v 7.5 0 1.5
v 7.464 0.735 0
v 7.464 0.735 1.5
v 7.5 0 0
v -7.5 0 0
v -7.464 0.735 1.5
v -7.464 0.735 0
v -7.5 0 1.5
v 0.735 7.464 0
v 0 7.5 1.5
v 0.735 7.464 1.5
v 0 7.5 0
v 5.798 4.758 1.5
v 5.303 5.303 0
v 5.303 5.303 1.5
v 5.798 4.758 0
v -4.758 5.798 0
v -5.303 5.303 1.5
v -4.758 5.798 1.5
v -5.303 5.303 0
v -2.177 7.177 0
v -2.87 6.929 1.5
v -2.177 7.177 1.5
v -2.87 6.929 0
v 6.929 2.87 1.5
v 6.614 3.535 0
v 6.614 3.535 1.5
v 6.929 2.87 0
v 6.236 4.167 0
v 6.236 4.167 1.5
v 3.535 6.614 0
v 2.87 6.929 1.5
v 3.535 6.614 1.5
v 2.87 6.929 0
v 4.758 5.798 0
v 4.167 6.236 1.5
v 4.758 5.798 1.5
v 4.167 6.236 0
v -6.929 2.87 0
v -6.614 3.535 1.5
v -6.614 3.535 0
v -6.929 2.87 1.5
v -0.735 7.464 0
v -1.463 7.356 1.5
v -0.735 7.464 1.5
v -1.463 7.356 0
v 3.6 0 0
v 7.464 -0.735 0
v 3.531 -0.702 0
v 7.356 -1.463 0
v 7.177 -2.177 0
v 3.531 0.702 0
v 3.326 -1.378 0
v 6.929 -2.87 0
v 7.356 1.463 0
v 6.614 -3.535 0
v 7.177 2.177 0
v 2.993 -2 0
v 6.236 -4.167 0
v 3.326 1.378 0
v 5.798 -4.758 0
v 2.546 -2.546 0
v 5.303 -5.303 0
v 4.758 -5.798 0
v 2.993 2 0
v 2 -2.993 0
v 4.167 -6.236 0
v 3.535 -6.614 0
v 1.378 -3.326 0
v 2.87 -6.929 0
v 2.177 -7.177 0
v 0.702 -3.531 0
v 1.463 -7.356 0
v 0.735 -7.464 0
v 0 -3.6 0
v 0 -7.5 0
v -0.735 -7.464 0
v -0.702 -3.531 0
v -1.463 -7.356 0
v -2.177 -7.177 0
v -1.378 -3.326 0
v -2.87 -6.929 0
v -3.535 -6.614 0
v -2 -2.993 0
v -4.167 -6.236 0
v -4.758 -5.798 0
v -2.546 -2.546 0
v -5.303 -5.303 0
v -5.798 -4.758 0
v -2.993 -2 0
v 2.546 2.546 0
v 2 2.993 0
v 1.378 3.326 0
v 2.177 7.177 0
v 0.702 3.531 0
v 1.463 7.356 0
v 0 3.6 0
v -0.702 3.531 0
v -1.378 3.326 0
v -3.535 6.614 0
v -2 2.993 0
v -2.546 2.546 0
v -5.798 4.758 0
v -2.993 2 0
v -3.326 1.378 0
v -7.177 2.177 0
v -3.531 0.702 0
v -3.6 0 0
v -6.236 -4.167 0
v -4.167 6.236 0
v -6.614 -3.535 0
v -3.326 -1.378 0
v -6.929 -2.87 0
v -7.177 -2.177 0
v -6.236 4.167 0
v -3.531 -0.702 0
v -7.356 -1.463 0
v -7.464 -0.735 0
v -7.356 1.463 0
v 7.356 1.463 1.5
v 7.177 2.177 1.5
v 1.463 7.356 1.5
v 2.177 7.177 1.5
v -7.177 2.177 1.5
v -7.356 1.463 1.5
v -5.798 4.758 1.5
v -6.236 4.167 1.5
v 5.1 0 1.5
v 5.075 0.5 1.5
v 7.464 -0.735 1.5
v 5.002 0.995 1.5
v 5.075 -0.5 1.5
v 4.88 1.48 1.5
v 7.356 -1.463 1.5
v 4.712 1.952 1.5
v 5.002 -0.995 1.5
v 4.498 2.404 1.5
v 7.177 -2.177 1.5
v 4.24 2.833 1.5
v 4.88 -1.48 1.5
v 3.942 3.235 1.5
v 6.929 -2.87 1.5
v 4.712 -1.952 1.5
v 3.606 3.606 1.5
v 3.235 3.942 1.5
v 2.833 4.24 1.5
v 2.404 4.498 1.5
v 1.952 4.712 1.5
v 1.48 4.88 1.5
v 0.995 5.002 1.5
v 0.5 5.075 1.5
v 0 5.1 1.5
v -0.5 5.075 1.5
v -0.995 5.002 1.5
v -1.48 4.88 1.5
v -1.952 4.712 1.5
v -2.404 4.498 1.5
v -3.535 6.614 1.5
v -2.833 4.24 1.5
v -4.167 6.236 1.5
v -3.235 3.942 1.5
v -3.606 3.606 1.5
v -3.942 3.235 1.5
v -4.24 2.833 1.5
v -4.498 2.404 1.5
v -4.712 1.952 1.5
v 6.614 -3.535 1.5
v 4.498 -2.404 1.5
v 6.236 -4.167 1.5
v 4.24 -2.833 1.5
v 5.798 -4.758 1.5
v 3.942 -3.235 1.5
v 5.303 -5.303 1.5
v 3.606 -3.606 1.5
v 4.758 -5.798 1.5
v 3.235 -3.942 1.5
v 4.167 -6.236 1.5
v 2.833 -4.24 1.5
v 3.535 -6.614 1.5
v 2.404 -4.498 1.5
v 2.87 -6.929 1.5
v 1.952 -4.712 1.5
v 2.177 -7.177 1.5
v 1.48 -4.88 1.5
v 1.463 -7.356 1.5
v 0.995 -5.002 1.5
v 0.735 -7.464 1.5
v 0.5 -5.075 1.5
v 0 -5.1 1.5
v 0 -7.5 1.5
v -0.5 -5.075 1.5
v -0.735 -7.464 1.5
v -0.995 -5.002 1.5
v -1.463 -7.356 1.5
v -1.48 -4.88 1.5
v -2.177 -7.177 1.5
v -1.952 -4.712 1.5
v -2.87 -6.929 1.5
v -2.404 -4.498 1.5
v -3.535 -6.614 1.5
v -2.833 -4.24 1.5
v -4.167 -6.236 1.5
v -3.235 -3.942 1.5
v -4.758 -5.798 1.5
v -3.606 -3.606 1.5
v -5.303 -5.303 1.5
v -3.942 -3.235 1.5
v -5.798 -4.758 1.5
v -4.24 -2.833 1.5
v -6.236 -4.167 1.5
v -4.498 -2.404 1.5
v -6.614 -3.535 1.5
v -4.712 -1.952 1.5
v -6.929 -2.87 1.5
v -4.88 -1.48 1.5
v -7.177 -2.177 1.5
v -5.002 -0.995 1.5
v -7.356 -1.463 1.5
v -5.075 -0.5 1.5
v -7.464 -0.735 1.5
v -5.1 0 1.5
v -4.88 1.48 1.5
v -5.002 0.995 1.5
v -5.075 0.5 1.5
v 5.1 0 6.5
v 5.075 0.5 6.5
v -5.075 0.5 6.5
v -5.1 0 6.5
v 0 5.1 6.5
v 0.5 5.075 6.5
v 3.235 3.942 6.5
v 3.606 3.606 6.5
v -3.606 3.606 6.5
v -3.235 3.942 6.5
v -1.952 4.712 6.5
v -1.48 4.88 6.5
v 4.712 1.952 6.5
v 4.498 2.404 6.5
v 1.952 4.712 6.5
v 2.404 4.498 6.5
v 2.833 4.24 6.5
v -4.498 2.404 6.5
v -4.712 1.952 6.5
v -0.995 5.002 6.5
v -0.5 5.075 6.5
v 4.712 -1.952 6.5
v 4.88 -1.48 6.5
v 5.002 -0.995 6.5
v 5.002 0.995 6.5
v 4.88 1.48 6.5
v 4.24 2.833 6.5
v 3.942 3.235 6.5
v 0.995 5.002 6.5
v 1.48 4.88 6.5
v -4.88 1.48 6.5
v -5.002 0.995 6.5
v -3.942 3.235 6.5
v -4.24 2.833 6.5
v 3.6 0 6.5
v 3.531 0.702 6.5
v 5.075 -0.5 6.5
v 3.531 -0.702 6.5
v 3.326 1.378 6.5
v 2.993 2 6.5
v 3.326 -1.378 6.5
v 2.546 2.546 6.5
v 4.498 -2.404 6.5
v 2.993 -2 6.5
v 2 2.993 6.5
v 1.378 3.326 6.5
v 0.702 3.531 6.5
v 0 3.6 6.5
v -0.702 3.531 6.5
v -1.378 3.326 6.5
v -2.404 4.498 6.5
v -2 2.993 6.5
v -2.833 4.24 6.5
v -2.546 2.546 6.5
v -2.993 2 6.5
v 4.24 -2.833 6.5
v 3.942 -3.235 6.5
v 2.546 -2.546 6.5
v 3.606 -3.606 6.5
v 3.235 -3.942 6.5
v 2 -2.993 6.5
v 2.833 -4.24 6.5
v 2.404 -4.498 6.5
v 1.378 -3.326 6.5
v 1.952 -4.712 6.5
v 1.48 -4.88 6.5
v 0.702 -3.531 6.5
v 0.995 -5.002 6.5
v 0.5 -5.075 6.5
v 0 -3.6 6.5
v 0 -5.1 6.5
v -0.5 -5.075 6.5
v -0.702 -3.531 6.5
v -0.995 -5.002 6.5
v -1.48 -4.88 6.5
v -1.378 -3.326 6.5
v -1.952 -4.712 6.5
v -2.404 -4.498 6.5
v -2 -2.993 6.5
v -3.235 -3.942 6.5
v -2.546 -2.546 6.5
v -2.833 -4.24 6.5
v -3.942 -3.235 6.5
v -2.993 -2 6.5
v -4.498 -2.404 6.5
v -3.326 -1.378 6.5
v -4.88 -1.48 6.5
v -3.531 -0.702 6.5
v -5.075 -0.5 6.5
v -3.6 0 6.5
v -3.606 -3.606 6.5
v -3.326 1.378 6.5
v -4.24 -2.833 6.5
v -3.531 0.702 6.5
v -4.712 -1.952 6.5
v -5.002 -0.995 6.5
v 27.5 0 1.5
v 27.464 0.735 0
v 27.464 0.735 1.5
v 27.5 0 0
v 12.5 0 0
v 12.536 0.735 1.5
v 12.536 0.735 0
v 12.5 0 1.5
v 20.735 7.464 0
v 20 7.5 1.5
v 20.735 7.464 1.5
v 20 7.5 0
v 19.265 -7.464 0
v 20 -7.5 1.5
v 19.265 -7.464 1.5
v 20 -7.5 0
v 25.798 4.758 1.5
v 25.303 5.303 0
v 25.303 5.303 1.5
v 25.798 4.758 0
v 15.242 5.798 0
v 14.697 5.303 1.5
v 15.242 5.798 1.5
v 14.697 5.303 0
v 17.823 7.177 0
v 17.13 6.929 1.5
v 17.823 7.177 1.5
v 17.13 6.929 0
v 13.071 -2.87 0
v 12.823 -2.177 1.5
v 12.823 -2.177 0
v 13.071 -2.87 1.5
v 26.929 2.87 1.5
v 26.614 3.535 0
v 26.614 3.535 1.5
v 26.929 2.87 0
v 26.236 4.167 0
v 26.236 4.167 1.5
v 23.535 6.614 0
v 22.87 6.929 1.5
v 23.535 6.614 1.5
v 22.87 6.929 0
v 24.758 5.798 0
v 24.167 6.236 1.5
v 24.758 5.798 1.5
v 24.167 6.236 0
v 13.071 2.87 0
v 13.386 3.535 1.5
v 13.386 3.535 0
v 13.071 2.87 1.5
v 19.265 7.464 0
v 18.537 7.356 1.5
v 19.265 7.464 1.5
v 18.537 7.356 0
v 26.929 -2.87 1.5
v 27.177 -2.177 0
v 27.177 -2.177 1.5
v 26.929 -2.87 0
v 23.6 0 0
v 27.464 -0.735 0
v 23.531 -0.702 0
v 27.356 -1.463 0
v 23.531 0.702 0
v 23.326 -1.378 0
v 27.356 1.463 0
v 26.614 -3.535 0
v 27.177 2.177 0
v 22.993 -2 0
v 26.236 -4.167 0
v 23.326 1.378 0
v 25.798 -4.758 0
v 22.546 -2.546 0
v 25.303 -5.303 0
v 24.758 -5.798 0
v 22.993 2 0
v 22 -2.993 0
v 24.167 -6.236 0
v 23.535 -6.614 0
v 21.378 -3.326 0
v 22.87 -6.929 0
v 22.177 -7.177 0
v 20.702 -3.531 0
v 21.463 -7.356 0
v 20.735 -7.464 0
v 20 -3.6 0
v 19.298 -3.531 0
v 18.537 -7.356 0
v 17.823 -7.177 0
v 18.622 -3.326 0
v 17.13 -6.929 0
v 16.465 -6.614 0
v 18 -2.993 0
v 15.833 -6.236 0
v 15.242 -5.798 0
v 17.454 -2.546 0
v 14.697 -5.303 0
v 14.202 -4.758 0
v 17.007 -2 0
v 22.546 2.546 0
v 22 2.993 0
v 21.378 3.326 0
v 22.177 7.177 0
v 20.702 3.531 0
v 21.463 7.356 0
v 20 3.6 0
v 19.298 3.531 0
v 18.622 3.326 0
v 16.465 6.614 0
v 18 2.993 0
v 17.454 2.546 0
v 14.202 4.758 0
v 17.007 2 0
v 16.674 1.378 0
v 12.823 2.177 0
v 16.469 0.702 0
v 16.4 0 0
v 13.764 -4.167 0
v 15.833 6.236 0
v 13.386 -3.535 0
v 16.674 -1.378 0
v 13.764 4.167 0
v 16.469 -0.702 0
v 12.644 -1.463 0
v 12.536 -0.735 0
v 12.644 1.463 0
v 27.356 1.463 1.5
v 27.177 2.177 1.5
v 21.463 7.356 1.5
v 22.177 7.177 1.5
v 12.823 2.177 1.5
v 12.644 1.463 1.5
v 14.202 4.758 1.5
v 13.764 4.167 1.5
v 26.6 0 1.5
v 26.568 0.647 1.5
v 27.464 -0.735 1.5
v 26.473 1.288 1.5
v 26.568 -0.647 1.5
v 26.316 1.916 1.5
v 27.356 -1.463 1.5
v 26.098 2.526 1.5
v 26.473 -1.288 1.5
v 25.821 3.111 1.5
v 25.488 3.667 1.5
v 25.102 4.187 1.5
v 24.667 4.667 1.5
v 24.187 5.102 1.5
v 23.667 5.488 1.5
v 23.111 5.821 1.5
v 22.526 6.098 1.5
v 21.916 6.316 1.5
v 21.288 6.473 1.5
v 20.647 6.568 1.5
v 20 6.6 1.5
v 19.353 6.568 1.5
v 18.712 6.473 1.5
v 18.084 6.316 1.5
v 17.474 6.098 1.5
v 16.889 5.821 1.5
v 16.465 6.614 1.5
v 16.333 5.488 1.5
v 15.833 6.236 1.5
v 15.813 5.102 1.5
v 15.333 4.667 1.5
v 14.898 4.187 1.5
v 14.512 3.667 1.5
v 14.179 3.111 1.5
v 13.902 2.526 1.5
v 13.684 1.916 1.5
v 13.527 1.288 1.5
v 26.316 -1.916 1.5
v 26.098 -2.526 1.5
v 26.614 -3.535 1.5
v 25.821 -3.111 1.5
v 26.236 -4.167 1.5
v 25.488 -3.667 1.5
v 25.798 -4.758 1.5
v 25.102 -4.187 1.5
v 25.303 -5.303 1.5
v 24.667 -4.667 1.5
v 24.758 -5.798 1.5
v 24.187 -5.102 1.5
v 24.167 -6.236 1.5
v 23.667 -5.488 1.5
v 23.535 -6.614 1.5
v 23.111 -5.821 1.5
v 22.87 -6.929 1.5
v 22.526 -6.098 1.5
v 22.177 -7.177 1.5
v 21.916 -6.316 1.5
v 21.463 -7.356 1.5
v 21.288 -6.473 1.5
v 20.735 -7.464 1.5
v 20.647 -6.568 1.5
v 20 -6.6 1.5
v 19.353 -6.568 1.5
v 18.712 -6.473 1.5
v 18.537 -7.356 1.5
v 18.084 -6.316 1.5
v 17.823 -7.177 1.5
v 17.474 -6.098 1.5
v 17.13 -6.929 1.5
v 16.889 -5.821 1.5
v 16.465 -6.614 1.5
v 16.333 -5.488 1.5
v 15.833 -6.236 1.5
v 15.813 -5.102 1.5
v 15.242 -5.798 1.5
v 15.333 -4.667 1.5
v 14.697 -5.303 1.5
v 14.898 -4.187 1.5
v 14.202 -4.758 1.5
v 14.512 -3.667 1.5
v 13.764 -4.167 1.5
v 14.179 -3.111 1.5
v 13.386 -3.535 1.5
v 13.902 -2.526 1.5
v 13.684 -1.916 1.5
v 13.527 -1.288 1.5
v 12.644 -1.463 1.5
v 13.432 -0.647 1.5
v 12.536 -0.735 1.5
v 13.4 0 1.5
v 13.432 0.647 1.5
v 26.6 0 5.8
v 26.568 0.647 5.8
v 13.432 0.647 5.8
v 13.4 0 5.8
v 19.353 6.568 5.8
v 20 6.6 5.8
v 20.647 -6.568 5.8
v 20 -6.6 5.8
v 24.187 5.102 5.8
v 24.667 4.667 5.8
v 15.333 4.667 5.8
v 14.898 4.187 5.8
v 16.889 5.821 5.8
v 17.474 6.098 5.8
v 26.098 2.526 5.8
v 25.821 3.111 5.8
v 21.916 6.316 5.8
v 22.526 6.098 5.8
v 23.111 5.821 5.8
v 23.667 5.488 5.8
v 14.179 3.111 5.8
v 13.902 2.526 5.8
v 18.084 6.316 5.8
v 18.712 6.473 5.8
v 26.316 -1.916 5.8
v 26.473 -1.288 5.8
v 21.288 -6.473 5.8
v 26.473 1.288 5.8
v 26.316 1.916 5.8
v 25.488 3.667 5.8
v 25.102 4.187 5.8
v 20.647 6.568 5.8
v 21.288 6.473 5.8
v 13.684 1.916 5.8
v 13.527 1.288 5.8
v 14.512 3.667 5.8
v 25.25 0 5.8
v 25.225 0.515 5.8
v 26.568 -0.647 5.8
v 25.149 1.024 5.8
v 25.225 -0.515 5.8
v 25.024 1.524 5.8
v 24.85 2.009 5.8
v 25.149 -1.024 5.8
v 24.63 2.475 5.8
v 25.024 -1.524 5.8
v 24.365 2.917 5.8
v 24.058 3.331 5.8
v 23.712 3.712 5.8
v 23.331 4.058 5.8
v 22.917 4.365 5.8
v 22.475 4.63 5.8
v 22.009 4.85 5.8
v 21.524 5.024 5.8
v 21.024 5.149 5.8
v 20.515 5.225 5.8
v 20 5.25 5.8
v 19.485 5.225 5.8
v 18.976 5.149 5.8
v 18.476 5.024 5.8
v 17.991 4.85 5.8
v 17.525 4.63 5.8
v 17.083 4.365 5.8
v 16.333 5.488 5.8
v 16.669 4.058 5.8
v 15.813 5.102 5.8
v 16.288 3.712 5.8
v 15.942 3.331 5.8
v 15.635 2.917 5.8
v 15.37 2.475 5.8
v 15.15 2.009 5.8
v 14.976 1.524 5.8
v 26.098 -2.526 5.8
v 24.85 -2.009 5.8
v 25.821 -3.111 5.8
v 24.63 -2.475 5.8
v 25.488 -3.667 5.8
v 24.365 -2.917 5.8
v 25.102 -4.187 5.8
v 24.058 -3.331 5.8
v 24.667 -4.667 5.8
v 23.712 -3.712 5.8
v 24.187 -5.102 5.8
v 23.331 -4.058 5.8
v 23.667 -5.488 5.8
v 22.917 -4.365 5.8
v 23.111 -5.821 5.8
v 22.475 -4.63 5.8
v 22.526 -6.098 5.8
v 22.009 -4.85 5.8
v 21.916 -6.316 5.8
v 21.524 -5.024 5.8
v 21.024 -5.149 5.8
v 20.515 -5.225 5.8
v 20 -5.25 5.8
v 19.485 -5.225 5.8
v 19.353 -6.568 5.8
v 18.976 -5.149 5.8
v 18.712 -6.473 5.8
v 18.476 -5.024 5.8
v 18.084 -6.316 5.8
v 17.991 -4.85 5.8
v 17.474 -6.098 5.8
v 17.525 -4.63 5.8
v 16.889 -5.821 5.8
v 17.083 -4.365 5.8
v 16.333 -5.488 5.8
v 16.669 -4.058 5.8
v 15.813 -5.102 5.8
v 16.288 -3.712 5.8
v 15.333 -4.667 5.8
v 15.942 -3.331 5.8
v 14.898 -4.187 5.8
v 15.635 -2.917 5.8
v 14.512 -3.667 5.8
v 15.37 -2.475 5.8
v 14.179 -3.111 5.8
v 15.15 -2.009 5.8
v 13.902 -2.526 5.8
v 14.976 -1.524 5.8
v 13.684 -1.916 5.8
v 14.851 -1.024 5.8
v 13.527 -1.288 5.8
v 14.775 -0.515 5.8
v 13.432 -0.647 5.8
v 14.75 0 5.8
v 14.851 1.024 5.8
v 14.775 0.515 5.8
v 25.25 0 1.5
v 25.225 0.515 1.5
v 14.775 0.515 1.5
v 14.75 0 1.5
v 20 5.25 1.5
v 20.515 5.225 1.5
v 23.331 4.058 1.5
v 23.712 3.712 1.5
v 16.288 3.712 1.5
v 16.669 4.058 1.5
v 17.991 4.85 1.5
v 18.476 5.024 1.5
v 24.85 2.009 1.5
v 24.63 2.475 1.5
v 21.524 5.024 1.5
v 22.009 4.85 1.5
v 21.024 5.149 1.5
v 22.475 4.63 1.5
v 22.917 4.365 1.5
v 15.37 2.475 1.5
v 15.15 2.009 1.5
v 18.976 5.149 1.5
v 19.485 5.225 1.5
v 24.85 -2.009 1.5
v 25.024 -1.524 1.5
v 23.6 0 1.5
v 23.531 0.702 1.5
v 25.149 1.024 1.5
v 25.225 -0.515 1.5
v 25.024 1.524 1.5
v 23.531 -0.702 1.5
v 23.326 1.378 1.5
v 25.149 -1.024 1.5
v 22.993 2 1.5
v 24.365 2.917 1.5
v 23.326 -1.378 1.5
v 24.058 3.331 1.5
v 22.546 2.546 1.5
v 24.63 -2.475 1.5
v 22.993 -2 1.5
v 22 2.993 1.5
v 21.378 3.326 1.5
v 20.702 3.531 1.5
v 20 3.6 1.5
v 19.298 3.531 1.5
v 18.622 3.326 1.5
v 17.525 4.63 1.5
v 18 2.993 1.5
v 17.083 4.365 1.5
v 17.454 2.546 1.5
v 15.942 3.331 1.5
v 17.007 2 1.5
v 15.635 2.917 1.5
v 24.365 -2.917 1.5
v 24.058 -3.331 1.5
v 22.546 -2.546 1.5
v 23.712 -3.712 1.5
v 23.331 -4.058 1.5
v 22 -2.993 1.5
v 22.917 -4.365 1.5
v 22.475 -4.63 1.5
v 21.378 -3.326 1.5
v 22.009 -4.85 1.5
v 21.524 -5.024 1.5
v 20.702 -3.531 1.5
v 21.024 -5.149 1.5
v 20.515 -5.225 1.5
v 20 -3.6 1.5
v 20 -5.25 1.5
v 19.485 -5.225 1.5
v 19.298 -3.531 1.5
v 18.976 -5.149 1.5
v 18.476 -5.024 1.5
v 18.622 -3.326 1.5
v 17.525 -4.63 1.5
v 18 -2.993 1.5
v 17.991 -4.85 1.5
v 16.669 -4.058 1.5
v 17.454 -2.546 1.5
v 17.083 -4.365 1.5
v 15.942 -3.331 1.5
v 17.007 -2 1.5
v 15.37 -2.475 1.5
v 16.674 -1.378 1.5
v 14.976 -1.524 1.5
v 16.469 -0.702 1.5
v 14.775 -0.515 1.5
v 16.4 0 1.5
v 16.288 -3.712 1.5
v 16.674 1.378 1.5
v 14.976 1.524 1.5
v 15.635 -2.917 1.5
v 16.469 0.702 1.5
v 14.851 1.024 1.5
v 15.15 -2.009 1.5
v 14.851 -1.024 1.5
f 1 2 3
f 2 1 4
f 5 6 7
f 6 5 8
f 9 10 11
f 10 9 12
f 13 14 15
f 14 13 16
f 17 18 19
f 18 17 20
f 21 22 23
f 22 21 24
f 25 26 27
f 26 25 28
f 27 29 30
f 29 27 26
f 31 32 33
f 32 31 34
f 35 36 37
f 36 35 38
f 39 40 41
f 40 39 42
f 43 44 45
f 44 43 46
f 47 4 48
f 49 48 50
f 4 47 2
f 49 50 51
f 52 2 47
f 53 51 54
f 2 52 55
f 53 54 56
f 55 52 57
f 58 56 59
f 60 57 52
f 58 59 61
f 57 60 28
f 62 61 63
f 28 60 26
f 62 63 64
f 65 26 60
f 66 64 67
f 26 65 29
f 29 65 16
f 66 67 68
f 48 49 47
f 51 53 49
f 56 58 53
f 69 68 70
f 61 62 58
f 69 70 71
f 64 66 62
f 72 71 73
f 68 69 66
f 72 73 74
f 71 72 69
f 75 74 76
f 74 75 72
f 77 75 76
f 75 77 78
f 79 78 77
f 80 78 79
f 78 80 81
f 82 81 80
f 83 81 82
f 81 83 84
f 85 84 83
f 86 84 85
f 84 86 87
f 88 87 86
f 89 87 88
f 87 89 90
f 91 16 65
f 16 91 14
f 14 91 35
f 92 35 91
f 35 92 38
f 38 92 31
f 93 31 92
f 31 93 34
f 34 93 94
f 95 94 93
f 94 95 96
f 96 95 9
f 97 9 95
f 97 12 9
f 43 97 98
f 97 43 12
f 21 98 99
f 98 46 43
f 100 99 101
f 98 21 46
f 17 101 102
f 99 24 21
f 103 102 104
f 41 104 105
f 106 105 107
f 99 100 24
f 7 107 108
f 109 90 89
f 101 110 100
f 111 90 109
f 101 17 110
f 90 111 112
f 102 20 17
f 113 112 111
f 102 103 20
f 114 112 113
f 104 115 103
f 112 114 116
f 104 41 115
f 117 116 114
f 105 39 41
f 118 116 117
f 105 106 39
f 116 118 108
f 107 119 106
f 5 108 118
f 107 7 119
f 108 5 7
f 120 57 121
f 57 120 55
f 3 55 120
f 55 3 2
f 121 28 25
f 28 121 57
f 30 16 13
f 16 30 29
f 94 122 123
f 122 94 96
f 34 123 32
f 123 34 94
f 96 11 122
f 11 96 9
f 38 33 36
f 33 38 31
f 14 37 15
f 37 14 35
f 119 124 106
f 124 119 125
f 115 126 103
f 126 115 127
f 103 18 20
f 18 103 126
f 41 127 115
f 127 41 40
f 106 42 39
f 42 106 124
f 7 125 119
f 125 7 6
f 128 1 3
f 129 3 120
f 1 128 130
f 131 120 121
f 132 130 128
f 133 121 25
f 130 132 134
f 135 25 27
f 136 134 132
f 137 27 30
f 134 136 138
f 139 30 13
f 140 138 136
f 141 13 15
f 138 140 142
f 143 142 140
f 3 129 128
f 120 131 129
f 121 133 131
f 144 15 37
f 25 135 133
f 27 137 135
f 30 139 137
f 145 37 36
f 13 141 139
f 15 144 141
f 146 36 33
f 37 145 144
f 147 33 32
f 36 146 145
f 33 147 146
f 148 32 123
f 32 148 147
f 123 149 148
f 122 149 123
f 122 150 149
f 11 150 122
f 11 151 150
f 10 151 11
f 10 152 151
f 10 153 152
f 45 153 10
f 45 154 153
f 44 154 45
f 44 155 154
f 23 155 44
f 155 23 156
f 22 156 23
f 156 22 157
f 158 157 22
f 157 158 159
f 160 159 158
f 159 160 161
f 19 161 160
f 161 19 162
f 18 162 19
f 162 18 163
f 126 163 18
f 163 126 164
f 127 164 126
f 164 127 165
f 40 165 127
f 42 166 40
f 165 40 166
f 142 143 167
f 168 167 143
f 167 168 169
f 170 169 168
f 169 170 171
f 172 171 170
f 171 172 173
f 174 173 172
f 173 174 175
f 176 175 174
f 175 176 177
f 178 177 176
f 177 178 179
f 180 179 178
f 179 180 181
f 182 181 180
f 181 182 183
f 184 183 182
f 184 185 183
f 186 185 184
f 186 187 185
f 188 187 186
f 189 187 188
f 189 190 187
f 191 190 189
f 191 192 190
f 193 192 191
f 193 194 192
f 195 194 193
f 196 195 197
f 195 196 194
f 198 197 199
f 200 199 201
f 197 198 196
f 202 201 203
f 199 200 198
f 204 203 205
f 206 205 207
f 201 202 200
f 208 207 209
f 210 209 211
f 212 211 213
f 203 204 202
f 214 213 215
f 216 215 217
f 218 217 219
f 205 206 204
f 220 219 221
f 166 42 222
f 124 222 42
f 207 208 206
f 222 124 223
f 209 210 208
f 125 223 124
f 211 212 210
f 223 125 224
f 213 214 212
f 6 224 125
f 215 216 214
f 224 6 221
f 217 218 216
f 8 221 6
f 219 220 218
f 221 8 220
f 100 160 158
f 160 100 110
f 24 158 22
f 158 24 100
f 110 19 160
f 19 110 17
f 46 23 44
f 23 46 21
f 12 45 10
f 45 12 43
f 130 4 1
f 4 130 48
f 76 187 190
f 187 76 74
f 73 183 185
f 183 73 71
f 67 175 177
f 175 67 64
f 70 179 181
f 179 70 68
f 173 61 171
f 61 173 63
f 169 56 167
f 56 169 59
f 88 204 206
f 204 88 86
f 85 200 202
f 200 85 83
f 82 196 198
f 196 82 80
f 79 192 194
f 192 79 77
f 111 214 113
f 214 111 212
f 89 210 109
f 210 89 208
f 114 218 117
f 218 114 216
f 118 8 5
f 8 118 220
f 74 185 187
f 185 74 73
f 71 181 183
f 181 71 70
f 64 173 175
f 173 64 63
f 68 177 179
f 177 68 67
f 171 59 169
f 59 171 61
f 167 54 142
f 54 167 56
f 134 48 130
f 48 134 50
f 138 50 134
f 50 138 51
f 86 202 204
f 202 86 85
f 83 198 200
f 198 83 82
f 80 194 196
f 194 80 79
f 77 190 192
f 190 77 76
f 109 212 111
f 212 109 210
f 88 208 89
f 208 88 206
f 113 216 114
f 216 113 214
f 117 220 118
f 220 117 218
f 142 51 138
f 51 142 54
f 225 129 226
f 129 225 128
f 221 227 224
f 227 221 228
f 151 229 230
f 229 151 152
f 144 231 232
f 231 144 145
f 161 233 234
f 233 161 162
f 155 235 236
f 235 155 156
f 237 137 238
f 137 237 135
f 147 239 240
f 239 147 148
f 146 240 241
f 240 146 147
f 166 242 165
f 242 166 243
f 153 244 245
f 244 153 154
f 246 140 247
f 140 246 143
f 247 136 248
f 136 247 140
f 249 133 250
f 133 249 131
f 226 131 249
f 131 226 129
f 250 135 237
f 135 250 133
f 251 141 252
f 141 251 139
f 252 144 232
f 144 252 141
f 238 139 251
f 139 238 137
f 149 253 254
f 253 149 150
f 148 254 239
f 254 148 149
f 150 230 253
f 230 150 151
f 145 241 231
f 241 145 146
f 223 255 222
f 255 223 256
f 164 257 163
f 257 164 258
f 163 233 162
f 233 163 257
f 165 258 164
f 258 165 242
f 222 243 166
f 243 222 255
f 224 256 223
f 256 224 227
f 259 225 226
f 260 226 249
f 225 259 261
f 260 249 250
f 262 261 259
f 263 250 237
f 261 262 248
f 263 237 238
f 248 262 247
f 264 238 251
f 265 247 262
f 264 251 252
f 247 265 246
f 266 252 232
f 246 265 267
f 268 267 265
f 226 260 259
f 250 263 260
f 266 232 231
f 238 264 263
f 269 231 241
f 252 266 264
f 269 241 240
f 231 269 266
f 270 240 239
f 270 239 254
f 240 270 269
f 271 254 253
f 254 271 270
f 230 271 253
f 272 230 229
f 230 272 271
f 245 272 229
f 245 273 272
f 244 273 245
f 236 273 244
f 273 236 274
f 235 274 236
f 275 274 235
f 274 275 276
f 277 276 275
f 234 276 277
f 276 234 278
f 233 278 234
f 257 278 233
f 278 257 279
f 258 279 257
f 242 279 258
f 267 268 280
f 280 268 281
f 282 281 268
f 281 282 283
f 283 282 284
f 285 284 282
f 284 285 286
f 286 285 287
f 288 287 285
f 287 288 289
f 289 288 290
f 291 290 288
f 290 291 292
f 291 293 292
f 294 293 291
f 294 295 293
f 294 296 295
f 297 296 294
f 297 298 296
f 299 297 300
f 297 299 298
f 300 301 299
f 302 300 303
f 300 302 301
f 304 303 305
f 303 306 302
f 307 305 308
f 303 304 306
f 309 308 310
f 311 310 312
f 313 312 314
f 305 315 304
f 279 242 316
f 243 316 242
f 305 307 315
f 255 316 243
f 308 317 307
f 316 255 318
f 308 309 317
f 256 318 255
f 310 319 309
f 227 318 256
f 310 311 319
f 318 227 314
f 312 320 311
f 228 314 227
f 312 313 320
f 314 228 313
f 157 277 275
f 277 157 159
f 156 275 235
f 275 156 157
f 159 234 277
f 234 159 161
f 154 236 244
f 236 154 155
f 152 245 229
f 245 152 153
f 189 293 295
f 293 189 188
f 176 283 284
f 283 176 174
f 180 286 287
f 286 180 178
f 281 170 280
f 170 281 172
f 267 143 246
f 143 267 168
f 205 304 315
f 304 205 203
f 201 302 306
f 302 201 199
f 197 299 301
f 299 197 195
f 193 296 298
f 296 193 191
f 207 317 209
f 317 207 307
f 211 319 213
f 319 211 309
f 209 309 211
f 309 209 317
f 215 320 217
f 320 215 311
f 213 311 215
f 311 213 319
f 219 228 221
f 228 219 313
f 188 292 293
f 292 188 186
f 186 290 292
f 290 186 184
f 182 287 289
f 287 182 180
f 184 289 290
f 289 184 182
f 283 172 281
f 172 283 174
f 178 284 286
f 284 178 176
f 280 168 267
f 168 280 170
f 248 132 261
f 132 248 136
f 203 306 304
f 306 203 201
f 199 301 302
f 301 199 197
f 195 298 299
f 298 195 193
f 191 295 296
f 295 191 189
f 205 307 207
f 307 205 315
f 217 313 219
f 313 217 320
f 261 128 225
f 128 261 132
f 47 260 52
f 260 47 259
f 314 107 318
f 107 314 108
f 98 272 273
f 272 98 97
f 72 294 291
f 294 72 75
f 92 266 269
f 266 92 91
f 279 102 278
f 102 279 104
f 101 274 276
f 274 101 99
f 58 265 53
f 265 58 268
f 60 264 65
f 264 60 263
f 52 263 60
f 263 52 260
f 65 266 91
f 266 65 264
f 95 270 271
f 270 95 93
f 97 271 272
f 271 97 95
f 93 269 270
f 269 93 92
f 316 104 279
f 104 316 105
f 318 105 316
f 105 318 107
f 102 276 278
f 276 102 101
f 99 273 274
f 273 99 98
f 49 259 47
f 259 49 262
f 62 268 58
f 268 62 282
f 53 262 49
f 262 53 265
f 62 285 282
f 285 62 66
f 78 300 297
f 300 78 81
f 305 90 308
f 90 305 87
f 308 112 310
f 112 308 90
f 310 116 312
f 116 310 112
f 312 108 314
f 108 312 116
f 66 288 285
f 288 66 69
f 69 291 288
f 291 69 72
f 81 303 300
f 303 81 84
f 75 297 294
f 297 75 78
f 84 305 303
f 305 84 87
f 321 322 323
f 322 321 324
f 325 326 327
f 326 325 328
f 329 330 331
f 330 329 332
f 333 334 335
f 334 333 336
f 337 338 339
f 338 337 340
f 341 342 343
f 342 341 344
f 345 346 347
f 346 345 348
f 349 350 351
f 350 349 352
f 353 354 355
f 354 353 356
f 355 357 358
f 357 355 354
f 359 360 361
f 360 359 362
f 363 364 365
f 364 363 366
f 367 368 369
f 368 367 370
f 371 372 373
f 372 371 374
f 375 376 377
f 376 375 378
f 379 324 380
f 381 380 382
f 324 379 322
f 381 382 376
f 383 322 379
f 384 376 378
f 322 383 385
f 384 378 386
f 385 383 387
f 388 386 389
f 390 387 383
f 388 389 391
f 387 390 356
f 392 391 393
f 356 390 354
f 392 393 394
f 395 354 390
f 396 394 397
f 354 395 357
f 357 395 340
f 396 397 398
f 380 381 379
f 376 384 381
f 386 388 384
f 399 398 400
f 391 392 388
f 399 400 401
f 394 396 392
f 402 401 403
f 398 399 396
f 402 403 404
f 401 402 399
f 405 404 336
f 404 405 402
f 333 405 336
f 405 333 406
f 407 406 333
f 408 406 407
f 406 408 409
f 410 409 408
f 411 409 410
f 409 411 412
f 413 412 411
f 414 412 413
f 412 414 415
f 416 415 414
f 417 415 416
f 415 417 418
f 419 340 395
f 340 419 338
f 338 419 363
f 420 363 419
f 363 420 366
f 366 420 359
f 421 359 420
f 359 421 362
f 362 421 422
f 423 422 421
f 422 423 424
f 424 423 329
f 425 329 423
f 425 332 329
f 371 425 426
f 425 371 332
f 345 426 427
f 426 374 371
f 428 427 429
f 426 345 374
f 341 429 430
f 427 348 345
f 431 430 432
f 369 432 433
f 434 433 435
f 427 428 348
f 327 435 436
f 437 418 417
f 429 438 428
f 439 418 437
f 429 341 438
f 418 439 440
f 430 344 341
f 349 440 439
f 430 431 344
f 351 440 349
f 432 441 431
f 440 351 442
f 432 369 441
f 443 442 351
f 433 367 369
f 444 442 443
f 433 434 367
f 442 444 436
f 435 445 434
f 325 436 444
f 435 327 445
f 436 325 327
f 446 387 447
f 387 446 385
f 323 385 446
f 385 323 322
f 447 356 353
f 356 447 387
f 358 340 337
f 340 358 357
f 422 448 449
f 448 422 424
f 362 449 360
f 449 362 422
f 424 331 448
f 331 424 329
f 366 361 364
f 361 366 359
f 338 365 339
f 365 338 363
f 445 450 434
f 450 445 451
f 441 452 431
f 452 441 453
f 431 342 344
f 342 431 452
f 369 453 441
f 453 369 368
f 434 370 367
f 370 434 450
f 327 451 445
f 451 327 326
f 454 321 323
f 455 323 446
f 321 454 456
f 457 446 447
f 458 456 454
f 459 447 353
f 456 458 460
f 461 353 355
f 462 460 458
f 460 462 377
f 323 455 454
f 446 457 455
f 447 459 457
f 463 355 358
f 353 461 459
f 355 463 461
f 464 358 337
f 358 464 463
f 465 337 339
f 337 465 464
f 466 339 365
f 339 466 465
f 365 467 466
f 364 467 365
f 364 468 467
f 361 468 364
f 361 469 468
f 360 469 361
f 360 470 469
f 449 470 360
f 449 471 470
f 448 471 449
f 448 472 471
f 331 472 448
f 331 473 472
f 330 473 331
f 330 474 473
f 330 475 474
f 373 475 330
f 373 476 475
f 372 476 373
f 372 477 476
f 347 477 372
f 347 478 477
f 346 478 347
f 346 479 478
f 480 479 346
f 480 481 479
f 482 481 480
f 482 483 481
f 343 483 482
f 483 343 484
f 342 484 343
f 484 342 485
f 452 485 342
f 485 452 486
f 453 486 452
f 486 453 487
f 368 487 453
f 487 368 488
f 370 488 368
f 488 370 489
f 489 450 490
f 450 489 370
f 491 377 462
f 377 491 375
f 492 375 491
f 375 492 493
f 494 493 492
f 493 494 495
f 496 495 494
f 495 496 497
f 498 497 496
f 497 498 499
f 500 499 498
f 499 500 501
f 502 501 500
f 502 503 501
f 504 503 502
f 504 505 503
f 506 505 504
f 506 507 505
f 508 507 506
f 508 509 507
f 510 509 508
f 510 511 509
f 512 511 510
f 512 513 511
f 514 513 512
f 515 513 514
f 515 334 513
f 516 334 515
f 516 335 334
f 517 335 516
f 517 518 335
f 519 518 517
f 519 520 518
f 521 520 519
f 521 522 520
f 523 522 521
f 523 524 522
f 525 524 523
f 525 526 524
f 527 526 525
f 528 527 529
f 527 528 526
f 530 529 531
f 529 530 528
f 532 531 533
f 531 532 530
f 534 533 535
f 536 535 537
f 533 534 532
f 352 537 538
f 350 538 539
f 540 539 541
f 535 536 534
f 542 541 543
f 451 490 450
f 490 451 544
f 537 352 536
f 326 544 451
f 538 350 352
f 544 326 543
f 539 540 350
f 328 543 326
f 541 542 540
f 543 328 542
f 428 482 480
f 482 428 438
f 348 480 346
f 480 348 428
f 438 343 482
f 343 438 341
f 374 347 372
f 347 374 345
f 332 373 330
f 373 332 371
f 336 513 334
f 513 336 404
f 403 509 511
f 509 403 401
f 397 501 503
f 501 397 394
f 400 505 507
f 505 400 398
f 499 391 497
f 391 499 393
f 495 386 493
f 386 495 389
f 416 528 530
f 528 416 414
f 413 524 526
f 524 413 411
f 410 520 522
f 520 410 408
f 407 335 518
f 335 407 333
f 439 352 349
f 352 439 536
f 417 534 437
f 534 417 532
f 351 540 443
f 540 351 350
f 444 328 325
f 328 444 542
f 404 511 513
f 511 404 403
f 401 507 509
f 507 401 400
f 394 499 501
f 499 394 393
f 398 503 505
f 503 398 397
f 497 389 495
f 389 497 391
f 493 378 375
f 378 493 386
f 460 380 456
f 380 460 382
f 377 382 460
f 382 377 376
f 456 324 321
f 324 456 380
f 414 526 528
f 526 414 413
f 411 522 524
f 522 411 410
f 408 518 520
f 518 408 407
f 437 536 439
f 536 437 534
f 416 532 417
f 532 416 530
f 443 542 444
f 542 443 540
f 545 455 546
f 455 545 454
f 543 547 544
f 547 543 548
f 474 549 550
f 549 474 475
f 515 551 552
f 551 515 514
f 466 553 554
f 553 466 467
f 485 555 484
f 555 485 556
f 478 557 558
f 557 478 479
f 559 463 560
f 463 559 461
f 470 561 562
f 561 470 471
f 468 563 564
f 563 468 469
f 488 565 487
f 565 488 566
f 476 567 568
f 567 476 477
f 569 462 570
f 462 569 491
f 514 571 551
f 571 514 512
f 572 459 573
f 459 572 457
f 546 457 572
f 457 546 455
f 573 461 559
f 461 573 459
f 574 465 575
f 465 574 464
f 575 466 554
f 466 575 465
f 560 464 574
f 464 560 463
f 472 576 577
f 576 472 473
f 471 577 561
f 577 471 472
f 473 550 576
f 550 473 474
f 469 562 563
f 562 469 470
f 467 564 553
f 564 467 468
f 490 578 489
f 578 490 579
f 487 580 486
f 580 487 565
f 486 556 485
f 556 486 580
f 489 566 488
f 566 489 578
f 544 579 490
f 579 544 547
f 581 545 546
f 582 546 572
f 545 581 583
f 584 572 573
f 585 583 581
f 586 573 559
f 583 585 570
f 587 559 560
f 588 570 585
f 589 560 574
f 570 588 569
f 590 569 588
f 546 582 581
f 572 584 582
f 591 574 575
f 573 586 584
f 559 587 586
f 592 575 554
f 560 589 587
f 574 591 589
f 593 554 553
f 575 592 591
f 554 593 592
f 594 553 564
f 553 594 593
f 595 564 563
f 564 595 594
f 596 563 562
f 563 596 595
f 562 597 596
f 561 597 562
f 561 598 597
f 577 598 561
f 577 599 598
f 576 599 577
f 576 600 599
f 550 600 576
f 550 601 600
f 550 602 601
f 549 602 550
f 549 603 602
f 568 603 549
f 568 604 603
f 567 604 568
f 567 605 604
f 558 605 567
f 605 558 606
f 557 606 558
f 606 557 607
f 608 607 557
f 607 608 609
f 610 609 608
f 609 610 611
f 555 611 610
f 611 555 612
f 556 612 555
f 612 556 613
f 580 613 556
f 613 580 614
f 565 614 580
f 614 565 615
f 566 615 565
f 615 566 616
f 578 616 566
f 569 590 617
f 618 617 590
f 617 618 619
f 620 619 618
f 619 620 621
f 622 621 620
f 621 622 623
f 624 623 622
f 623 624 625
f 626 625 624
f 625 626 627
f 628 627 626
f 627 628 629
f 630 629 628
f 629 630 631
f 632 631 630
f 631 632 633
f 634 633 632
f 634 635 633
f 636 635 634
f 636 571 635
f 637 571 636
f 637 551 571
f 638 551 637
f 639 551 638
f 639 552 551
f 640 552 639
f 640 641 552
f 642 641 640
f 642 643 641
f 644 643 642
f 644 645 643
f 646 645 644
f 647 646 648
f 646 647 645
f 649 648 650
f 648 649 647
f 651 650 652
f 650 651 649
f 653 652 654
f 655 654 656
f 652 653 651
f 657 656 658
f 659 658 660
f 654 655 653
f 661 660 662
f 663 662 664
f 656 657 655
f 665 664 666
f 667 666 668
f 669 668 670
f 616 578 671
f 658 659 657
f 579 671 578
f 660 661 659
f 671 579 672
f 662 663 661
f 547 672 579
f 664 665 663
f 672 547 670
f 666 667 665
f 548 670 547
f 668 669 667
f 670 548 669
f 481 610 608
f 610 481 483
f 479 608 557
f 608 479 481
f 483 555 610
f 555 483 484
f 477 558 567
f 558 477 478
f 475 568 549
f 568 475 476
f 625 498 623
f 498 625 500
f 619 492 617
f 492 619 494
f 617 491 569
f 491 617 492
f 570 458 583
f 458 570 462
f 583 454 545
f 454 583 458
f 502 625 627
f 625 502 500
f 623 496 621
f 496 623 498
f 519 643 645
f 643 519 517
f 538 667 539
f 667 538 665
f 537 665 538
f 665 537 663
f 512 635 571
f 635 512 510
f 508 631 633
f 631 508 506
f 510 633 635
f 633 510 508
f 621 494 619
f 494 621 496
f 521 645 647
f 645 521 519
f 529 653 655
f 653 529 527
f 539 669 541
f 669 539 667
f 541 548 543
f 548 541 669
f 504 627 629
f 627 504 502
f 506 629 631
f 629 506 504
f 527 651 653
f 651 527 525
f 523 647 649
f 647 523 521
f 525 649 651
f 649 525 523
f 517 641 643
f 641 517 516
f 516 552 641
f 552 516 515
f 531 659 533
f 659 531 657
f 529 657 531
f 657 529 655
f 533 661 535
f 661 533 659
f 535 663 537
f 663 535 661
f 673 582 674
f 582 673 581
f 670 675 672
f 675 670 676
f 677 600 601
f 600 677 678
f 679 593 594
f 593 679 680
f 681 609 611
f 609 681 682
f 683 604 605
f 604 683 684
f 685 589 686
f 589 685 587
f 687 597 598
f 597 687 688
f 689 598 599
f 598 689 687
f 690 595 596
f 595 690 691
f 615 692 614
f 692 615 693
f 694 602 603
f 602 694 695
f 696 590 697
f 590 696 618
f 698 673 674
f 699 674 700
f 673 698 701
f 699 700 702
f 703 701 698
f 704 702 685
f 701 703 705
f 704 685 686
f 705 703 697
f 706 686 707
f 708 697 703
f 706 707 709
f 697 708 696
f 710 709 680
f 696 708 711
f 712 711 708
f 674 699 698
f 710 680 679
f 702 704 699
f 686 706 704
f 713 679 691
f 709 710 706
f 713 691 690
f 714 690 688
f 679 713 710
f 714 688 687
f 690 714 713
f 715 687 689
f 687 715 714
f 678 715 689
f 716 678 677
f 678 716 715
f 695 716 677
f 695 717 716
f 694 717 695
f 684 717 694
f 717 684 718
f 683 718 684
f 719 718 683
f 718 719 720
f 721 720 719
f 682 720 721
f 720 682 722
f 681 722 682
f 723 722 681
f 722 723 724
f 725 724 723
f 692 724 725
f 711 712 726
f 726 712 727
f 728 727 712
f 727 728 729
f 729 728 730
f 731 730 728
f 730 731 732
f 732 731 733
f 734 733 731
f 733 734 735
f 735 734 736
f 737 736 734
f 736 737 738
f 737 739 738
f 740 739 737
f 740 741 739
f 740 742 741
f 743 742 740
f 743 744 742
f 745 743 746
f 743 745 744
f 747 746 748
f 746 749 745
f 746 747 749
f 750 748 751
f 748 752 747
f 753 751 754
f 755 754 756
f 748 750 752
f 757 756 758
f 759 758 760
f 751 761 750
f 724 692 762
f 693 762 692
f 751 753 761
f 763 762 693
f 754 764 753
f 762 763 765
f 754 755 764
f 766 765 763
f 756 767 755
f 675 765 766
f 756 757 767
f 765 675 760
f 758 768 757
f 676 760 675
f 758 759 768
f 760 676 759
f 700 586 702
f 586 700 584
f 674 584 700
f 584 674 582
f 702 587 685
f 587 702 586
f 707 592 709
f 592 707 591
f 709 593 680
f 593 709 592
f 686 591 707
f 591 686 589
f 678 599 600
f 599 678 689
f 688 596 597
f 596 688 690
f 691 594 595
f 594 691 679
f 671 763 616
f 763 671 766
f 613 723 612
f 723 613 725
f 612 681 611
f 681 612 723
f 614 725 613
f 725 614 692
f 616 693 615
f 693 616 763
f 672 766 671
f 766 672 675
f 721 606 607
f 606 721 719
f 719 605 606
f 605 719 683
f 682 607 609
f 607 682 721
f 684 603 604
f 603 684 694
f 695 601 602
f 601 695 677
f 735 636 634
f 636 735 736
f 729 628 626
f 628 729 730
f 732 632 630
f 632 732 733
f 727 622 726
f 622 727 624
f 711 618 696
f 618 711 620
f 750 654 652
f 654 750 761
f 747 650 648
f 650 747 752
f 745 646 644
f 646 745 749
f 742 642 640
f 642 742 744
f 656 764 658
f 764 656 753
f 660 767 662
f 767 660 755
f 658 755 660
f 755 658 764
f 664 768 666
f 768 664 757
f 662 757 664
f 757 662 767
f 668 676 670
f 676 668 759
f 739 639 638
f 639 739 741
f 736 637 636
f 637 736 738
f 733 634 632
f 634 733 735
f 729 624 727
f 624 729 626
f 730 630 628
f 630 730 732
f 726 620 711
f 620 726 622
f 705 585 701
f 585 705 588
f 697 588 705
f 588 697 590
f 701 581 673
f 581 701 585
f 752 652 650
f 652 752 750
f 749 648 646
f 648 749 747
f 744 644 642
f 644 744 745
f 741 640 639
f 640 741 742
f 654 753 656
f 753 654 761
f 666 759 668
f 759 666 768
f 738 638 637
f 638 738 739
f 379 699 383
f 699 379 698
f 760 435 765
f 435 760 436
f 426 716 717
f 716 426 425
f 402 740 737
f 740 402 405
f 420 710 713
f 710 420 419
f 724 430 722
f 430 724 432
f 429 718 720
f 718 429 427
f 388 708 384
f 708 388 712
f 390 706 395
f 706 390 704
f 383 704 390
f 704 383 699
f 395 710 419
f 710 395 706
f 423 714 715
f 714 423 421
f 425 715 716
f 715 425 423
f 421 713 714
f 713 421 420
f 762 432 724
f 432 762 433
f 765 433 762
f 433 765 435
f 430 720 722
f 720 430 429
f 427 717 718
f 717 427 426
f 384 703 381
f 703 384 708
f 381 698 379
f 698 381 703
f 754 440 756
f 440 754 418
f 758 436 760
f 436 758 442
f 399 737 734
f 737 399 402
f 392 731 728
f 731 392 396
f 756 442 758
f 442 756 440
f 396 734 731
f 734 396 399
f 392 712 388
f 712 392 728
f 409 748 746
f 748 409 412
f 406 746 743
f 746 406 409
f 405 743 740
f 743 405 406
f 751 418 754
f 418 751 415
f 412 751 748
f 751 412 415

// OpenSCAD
// Grommet for truck body hole - Bandeirante (driver side, smaller hole)
// Two-piece: inner tube with flange + cap that glues on the other side

/* --- Parameters --- */
hole_d     = 10.5;  // body hole diameter (0.5mm smaller than passenger side)
panel_t    = 0.5;   // panel thickness
wall_t     = 1.5;   // tube wall thickness
clearance  = 0.3;   // fit clearance
wire_d     = hole_d - clearance - wall_t * 2;  // maximize wire passage
flange_d   = 15;    // flange (stop) diameter
flange_t   = 1.5;   // flange thickness
tube_h     = 5;     // tube height beyond flange

tube_od = hole_d - clearance;

// Cap parameters
cap_d  = flange_d;
cap_t  = 1.5;       // cap thickness
cap_lip = 4.3;  // socket depth matches panel thickness

/* --- Part 1: Inner tube with flange --- */
module inner_tube() {
    difference() {
        union() {
            // Flange
            cylinder(h=flange_t, d=flange_d, $fn=64);
            // Tube
            translate([0, 0, flange_t])
                cylinder(h=tube_h, d=tube_od, $fn=64);
        }
        // Wire hole
        translate([0, 0, -1])
            cylinder(h=flange_t + tube_h + 2, d=wire_d, $fn=32);
    }
}

/* --- Part 2: Cap (glues on the other side) --- */
module cap() {
    difference() {
        union() {
            // Flat cap
            cylinder(h=cap_t, d=cap_d, $fn=64);
            // Socket that slides over the tube end
            translate([0, 0, cap_t])
                cylinder(h=cap_lip, d=tube_od + wall_t * 2, $fn=64);
        }
        // Socket bore (fits snug over tube)
        translate([0, 0, cap_t])
            cylinder(h=cap_lip + 1, d=tube_od + clearance, $fn=64);
        // Wire hole
        translate([0, 0, -1])
            cylinder(h=cap_t + cap_lip + 2, d=wire_d, $fn=32);
    }
}

/* --- Layout for printing --- */
inner_tube();

translate([flange_d + 5, 0, 0])
    cap();
